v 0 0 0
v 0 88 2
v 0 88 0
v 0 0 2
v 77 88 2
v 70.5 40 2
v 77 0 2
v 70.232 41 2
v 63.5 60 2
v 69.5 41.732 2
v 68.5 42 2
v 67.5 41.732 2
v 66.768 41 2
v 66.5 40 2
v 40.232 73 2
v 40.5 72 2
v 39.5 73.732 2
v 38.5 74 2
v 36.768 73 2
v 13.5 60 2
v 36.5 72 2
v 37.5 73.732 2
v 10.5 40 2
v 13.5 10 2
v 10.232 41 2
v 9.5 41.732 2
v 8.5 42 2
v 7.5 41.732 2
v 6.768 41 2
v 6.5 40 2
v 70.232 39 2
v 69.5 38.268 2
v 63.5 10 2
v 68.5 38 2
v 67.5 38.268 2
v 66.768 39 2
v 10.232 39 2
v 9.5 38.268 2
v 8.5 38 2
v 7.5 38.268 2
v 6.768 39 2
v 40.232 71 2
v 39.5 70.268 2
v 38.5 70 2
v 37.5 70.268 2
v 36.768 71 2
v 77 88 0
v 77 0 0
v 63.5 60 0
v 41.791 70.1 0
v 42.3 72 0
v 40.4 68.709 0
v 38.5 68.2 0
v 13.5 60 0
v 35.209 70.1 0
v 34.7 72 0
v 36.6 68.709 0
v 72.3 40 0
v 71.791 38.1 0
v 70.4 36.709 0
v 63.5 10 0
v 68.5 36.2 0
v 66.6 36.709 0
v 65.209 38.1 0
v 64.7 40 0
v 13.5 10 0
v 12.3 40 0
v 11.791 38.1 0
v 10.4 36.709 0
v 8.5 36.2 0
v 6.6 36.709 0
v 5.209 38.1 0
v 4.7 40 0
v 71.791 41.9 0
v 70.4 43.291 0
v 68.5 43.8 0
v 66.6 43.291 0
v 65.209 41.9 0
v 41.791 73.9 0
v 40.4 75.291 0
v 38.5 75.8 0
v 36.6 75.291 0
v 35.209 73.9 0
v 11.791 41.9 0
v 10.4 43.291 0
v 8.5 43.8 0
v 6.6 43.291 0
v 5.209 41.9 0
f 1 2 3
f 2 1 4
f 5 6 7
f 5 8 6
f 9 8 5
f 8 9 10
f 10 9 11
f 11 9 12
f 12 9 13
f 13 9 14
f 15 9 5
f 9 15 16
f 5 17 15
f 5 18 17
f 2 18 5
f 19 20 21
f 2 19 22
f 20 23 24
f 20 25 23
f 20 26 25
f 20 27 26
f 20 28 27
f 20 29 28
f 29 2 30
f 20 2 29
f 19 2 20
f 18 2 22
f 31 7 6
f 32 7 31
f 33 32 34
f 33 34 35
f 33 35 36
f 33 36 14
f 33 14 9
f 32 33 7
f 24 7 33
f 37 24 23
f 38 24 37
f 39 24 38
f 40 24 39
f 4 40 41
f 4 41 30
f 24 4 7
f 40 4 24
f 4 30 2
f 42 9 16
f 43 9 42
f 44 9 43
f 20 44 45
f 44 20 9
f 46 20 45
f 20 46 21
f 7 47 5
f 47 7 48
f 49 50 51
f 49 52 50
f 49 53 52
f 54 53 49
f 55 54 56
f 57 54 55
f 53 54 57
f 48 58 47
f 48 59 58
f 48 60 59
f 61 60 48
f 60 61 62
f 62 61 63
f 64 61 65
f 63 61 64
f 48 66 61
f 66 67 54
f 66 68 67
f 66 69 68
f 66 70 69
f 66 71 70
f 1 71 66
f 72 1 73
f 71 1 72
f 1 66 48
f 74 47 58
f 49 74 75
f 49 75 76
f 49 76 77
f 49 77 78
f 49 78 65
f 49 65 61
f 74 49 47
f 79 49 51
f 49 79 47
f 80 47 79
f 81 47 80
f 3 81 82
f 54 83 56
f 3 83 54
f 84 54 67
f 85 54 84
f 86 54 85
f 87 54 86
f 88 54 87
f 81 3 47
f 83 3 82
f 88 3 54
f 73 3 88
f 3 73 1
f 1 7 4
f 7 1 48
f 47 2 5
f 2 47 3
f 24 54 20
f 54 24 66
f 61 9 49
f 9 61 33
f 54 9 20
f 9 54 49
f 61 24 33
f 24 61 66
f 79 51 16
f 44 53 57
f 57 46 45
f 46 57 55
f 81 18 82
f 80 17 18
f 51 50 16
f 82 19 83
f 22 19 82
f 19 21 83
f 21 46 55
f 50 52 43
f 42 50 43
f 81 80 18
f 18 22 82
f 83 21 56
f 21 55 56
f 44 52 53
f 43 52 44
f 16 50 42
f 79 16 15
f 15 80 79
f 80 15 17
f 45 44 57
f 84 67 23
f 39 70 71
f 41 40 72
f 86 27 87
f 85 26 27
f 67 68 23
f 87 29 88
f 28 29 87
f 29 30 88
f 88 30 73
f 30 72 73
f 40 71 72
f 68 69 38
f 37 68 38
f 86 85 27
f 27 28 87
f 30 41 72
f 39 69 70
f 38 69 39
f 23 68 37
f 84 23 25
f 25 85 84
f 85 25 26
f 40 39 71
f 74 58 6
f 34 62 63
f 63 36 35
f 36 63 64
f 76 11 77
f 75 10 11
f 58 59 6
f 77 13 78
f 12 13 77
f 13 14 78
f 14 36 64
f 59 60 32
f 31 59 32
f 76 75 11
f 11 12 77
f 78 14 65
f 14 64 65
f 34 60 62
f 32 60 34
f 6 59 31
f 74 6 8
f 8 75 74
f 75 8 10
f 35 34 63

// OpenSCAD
difference(){
cube([77,88,2]);
translate([13.5,10,-1])cube([50,50,4]);
translate([38.5,72, 0]) screw();
translate([8.5, 40,0]) screw();
translate([68.5,40,0]) screw();
}


module screw(){
cylinder(r1=3.8, r2=2, h=2);
}
